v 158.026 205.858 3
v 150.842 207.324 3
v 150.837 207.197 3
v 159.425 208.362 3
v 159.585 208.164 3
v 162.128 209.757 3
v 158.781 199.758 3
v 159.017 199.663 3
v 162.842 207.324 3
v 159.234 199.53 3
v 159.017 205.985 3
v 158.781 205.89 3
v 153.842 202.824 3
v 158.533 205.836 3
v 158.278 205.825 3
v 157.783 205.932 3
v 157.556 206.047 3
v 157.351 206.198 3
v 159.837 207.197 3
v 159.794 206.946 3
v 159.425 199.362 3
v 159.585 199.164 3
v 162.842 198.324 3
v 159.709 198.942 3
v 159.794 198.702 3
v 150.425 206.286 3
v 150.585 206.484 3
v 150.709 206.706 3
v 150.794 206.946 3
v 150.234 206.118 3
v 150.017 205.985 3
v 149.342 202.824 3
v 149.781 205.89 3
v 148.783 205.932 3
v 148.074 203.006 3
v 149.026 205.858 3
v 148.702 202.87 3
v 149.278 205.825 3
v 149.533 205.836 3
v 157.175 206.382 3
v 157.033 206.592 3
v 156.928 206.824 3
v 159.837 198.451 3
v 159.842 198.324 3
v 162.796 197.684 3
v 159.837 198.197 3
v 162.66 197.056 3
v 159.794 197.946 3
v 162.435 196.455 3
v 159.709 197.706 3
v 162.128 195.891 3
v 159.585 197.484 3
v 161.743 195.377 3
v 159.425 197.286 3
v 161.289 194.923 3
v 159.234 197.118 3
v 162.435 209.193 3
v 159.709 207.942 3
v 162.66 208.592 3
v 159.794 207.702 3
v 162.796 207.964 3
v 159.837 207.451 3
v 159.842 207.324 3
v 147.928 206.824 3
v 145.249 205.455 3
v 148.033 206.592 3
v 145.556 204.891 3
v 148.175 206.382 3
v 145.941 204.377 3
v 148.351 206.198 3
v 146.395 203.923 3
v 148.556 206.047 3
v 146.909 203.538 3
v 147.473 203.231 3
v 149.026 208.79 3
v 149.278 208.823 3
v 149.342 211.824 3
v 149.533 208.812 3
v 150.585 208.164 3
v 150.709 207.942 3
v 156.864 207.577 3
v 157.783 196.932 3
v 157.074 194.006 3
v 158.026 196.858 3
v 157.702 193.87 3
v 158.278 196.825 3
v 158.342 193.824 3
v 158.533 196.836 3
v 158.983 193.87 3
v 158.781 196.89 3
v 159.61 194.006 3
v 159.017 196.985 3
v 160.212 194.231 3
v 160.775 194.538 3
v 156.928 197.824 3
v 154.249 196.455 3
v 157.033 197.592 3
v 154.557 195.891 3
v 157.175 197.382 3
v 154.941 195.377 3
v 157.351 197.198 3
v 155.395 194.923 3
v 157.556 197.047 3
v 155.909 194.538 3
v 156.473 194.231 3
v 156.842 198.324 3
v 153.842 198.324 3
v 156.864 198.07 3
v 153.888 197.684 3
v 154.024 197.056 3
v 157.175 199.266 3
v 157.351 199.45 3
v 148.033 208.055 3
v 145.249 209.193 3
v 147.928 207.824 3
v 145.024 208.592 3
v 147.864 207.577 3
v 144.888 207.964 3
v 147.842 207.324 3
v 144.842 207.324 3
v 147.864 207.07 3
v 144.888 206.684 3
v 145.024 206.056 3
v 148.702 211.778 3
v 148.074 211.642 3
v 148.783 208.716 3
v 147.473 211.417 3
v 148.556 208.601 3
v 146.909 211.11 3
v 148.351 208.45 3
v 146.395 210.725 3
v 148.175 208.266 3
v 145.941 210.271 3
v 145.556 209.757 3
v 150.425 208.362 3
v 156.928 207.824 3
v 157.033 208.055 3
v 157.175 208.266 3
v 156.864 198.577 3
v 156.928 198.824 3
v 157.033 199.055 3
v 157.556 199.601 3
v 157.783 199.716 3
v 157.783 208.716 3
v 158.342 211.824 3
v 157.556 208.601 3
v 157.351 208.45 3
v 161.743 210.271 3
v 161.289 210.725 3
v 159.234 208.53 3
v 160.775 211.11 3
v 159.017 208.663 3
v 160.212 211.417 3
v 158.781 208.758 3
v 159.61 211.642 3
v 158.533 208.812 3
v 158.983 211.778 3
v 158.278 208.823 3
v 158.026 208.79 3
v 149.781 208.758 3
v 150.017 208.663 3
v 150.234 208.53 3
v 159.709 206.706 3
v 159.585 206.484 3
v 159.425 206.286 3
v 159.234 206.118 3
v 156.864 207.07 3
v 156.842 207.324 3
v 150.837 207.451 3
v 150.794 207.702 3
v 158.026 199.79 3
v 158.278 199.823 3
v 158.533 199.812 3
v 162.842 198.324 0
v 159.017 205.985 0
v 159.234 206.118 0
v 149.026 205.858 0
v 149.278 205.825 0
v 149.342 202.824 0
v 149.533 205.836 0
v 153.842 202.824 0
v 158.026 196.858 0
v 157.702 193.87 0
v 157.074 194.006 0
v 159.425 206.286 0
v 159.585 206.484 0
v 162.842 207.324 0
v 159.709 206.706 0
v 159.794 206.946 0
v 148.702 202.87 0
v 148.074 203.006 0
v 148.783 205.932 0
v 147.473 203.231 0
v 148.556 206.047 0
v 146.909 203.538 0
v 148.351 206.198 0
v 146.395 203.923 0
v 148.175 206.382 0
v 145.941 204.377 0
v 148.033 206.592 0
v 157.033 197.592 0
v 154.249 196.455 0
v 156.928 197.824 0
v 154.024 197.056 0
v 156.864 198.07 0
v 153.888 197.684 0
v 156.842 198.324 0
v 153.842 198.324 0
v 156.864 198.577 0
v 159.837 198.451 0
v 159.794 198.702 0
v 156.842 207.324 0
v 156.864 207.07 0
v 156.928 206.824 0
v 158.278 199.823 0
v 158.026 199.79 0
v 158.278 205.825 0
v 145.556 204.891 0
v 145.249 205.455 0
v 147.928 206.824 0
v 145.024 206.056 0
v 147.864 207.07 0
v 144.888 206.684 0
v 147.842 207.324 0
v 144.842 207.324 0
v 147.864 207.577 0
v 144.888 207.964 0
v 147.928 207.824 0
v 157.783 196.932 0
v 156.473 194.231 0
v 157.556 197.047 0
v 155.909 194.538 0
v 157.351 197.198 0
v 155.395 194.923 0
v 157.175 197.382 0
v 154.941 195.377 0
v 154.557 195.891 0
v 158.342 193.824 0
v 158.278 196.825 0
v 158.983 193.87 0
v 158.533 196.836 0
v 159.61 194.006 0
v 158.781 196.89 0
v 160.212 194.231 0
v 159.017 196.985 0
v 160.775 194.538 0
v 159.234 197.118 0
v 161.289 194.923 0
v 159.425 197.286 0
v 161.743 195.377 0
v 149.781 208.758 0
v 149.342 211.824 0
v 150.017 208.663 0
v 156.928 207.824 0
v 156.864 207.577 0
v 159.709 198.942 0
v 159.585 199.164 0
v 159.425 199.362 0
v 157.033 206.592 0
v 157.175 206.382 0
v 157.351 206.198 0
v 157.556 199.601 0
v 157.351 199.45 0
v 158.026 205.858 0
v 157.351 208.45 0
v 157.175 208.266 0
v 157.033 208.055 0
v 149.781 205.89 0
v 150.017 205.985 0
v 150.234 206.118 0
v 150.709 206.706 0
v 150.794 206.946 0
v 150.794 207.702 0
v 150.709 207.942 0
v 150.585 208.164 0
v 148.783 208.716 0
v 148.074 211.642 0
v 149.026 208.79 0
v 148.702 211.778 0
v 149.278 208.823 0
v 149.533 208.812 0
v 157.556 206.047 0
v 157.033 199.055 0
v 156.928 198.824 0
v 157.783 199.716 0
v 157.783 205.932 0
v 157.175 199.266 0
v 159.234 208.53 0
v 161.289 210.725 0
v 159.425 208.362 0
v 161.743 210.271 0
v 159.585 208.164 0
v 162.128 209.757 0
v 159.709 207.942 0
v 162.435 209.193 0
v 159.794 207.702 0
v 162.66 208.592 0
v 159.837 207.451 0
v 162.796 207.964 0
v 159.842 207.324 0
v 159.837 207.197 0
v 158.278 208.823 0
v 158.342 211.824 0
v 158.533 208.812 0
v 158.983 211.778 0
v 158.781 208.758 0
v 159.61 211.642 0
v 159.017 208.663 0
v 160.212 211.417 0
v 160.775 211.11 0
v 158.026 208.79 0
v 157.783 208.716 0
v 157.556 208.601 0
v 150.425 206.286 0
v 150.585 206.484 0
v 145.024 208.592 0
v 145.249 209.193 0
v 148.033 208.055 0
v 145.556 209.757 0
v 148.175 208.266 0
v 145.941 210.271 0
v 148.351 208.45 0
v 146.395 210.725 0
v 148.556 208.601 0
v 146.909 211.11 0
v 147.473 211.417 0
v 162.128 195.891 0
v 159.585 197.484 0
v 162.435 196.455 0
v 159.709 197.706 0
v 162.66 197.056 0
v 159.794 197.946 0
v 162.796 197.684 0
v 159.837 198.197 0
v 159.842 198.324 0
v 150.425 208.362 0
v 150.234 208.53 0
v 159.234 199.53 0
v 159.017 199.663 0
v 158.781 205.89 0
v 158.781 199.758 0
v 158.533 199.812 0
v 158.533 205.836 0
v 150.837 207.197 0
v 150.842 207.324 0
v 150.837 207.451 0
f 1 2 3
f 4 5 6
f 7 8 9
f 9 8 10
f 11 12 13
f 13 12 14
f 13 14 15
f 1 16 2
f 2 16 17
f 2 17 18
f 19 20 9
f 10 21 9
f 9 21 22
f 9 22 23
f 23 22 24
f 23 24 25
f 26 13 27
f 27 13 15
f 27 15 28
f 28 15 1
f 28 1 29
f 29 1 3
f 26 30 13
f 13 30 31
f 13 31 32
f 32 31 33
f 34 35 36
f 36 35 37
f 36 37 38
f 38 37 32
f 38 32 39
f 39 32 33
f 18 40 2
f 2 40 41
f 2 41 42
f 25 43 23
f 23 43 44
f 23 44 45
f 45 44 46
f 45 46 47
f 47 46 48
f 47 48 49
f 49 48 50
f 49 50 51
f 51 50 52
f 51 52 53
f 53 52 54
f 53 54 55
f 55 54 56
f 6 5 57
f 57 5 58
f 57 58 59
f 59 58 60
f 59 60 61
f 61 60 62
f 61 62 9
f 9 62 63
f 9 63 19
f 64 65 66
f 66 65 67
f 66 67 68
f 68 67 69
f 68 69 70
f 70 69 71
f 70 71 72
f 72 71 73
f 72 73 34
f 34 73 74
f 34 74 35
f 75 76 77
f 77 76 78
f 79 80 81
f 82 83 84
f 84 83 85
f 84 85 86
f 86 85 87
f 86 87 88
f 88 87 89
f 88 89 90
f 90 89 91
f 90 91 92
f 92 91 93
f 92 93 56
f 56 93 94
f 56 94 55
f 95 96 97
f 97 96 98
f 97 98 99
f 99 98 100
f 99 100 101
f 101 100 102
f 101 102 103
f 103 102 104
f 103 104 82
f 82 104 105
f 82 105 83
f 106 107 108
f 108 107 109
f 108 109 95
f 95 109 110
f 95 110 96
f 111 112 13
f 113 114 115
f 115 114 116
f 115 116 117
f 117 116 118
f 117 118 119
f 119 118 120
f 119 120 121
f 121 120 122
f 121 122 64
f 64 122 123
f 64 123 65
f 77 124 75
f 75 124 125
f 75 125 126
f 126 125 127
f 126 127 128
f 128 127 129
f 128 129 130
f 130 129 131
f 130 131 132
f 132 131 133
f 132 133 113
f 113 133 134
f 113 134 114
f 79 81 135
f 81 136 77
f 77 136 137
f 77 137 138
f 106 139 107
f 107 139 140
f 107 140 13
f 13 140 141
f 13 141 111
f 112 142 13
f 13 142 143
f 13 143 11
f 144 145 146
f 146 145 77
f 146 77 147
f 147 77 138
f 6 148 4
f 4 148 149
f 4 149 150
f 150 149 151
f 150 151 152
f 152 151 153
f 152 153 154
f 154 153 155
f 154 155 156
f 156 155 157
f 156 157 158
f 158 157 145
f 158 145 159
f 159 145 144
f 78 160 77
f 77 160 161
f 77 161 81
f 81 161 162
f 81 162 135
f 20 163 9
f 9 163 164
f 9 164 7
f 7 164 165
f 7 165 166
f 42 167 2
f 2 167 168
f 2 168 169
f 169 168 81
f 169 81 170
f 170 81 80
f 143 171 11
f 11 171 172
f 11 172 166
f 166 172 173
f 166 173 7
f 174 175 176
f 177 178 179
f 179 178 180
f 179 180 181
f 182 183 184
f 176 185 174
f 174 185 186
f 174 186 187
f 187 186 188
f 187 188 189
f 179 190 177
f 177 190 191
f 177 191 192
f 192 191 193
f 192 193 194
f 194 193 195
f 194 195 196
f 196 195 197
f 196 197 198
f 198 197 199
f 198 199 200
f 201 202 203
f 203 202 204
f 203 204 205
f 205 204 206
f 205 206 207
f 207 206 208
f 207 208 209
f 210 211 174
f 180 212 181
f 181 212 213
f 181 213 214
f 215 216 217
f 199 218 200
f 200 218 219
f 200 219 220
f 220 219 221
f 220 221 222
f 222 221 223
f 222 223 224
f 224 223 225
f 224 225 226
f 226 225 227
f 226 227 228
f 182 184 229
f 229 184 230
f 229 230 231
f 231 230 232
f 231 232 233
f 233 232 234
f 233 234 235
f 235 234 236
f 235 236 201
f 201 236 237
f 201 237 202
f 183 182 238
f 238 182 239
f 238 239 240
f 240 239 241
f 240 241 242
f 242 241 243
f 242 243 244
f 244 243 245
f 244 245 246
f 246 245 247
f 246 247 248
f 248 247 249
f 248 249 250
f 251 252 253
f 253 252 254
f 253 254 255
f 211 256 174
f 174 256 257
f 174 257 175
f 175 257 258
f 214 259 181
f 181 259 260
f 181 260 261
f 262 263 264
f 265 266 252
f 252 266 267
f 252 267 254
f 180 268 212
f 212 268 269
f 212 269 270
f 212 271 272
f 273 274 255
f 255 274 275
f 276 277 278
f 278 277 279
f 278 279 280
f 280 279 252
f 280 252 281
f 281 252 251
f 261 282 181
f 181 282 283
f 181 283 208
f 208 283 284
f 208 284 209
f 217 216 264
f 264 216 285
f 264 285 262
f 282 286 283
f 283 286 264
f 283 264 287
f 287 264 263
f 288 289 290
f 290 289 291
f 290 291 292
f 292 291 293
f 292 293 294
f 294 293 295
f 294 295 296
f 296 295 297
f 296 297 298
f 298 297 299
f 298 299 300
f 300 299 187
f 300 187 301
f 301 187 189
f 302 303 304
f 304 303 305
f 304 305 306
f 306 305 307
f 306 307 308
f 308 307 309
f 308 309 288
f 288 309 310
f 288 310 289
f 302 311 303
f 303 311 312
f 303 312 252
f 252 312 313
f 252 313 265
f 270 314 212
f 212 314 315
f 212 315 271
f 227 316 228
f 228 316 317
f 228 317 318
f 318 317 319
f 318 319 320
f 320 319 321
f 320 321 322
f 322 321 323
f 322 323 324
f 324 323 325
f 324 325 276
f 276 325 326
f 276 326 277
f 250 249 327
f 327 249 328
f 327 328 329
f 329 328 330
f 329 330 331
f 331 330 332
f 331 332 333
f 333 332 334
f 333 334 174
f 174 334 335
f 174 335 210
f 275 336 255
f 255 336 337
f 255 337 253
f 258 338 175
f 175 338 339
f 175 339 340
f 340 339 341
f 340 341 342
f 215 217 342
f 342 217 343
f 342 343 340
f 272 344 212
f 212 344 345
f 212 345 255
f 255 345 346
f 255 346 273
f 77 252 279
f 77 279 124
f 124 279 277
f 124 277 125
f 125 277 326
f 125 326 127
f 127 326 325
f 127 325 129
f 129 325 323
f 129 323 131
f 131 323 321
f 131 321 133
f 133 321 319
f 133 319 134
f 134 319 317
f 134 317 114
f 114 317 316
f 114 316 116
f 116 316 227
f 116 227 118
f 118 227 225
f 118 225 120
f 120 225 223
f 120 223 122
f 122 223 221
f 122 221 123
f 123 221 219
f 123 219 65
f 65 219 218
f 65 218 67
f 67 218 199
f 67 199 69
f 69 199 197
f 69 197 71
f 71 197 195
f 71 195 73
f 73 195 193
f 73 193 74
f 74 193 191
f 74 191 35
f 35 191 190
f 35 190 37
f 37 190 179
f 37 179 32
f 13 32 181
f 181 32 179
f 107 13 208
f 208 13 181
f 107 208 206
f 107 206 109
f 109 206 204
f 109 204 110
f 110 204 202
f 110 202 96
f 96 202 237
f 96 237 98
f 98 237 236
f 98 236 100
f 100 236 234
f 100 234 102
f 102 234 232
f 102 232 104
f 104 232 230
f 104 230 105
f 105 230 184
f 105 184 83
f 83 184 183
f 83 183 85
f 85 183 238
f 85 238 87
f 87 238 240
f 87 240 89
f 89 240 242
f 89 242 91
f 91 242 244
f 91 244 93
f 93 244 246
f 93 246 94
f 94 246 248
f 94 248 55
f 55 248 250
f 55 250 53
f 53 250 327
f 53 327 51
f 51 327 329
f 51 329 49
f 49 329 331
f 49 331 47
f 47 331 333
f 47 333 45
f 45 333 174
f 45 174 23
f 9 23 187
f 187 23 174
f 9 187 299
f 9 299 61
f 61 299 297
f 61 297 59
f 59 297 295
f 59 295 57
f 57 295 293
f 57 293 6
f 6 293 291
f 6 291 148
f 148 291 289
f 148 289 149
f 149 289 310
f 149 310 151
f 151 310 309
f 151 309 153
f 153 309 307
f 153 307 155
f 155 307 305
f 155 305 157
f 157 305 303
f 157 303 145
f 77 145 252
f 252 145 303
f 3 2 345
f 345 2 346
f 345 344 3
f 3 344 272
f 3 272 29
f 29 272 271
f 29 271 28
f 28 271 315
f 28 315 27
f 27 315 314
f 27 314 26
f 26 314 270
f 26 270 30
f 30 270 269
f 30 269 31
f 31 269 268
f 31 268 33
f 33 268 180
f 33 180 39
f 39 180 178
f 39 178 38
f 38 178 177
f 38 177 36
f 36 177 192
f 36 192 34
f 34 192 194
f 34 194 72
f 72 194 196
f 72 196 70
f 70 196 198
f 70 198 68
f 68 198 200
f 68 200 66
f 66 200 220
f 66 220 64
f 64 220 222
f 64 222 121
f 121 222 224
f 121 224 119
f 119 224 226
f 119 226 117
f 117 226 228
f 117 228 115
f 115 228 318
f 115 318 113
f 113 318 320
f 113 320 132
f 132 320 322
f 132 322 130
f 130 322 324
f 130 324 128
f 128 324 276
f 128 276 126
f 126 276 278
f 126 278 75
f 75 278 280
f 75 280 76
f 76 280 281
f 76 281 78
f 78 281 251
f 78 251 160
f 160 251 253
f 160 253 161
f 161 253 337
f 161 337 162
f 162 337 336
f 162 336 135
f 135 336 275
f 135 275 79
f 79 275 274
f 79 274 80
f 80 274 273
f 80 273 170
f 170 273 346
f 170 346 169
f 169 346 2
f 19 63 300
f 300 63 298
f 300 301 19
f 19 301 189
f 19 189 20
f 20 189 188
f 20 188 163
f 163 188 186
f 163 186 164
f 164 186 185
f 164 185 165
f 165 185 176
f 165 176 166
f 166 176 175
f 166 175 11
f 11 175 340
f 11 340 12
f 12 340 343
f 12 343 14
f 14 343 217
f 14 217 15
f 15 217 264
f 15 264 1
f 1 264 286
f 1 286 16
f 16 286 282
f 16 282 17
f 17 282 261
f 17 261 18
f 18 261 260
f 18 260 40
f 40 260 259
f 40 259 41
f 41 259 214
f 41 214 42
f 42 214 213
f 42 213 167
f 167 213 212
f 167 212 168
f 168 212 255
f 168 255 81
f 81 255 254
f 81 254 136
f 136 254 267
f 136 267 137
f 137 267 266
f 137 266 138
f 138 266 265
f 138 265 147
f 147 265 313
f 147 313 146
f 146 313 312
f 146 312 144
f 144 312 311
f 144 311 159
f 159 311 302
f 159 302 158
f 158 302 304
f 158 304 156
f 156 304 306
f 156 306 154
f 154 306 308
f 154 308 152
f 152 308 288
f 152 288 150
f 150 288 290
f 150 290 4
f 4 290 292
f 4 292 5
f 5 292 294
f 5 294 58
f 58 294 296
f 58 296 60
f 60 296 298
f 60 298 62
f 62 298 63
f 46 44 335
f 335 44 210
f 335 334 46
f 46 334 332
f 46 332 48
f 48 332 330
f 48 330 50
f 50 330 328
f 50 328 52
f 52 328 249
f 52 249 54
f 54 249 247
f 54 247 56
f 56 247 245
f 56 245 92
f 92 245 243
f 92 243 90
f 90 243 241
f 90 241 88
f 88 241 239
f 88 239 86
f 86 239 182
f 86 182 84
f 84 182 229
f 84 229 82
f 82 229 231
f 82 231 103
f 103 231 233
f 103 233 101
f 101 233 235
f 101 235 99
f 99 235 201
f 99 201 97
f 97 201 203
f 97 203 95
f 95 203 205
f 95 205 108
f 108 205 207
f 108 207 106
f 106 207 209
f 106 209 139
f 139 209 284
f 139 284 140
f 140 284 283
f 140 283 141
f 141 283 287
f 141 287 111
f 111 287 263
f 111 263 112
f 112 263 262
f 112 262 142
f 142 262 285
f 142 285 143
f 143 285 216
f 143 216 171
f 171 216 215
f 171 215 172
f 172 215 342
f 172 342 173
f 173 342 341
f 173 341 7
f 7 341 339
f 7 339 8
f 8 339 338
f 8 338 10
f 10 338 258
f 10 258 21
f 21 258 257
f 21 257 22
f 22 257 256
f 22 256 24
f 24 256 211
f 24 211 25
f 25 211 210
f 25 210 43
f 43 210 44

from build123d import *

# Parameters (mm, degrees)
MODEL_R                 = 1.5
SALIENTE_EXTRUIR1_DEPTH = 3


with BuildPart() as part:
    # Model → Saliente-Extruir1 (new body)
    with BuildSketch(Plane.XY):
        with BuildLine():
            Line((149.34213351, 211.823953209), (158.34213351, 211.823953209))
            ThreePointArc((158.34213351, 211.823953209), (161.524114025, 210.505933724), (162.84213351, 207.323953209))
            Line((162.84213351, 207.323953209), (162.84213351, 198.323953209))
            ThreePointArc((162.84213351, 198.323953209), (158.34213351, 193.823953209), (153.84213351, 198.323953209))
            Line((153.84213351, 198.323953209), (153.84213351, 202.823953209))
            Line((153.84213351, 202.823953209), (149.34213351, 202.823953209))
            ThreePointArc((149.34213351, 202.823953209), (144.84213351, 207.323953209), (149.34213351, 211.823953209))
        make_face()
        with Locations((149.34213351, 207.323953209)):
            Circle(MODEL_R, mode=Mode.SUBTRACT)
        with Locations((158.34213351, 207.323953209)):
            Circle(MODEL_R, mode=Mode.SUBTRACT)
        with Locations((158.34213351, 198.323953209)):
            Circle(MODEL_R, mode=Mode.SUBTRACT)
    extrude(amount=SALIENTE_EXTRUIR1_DEPTH)


solid = part.part
